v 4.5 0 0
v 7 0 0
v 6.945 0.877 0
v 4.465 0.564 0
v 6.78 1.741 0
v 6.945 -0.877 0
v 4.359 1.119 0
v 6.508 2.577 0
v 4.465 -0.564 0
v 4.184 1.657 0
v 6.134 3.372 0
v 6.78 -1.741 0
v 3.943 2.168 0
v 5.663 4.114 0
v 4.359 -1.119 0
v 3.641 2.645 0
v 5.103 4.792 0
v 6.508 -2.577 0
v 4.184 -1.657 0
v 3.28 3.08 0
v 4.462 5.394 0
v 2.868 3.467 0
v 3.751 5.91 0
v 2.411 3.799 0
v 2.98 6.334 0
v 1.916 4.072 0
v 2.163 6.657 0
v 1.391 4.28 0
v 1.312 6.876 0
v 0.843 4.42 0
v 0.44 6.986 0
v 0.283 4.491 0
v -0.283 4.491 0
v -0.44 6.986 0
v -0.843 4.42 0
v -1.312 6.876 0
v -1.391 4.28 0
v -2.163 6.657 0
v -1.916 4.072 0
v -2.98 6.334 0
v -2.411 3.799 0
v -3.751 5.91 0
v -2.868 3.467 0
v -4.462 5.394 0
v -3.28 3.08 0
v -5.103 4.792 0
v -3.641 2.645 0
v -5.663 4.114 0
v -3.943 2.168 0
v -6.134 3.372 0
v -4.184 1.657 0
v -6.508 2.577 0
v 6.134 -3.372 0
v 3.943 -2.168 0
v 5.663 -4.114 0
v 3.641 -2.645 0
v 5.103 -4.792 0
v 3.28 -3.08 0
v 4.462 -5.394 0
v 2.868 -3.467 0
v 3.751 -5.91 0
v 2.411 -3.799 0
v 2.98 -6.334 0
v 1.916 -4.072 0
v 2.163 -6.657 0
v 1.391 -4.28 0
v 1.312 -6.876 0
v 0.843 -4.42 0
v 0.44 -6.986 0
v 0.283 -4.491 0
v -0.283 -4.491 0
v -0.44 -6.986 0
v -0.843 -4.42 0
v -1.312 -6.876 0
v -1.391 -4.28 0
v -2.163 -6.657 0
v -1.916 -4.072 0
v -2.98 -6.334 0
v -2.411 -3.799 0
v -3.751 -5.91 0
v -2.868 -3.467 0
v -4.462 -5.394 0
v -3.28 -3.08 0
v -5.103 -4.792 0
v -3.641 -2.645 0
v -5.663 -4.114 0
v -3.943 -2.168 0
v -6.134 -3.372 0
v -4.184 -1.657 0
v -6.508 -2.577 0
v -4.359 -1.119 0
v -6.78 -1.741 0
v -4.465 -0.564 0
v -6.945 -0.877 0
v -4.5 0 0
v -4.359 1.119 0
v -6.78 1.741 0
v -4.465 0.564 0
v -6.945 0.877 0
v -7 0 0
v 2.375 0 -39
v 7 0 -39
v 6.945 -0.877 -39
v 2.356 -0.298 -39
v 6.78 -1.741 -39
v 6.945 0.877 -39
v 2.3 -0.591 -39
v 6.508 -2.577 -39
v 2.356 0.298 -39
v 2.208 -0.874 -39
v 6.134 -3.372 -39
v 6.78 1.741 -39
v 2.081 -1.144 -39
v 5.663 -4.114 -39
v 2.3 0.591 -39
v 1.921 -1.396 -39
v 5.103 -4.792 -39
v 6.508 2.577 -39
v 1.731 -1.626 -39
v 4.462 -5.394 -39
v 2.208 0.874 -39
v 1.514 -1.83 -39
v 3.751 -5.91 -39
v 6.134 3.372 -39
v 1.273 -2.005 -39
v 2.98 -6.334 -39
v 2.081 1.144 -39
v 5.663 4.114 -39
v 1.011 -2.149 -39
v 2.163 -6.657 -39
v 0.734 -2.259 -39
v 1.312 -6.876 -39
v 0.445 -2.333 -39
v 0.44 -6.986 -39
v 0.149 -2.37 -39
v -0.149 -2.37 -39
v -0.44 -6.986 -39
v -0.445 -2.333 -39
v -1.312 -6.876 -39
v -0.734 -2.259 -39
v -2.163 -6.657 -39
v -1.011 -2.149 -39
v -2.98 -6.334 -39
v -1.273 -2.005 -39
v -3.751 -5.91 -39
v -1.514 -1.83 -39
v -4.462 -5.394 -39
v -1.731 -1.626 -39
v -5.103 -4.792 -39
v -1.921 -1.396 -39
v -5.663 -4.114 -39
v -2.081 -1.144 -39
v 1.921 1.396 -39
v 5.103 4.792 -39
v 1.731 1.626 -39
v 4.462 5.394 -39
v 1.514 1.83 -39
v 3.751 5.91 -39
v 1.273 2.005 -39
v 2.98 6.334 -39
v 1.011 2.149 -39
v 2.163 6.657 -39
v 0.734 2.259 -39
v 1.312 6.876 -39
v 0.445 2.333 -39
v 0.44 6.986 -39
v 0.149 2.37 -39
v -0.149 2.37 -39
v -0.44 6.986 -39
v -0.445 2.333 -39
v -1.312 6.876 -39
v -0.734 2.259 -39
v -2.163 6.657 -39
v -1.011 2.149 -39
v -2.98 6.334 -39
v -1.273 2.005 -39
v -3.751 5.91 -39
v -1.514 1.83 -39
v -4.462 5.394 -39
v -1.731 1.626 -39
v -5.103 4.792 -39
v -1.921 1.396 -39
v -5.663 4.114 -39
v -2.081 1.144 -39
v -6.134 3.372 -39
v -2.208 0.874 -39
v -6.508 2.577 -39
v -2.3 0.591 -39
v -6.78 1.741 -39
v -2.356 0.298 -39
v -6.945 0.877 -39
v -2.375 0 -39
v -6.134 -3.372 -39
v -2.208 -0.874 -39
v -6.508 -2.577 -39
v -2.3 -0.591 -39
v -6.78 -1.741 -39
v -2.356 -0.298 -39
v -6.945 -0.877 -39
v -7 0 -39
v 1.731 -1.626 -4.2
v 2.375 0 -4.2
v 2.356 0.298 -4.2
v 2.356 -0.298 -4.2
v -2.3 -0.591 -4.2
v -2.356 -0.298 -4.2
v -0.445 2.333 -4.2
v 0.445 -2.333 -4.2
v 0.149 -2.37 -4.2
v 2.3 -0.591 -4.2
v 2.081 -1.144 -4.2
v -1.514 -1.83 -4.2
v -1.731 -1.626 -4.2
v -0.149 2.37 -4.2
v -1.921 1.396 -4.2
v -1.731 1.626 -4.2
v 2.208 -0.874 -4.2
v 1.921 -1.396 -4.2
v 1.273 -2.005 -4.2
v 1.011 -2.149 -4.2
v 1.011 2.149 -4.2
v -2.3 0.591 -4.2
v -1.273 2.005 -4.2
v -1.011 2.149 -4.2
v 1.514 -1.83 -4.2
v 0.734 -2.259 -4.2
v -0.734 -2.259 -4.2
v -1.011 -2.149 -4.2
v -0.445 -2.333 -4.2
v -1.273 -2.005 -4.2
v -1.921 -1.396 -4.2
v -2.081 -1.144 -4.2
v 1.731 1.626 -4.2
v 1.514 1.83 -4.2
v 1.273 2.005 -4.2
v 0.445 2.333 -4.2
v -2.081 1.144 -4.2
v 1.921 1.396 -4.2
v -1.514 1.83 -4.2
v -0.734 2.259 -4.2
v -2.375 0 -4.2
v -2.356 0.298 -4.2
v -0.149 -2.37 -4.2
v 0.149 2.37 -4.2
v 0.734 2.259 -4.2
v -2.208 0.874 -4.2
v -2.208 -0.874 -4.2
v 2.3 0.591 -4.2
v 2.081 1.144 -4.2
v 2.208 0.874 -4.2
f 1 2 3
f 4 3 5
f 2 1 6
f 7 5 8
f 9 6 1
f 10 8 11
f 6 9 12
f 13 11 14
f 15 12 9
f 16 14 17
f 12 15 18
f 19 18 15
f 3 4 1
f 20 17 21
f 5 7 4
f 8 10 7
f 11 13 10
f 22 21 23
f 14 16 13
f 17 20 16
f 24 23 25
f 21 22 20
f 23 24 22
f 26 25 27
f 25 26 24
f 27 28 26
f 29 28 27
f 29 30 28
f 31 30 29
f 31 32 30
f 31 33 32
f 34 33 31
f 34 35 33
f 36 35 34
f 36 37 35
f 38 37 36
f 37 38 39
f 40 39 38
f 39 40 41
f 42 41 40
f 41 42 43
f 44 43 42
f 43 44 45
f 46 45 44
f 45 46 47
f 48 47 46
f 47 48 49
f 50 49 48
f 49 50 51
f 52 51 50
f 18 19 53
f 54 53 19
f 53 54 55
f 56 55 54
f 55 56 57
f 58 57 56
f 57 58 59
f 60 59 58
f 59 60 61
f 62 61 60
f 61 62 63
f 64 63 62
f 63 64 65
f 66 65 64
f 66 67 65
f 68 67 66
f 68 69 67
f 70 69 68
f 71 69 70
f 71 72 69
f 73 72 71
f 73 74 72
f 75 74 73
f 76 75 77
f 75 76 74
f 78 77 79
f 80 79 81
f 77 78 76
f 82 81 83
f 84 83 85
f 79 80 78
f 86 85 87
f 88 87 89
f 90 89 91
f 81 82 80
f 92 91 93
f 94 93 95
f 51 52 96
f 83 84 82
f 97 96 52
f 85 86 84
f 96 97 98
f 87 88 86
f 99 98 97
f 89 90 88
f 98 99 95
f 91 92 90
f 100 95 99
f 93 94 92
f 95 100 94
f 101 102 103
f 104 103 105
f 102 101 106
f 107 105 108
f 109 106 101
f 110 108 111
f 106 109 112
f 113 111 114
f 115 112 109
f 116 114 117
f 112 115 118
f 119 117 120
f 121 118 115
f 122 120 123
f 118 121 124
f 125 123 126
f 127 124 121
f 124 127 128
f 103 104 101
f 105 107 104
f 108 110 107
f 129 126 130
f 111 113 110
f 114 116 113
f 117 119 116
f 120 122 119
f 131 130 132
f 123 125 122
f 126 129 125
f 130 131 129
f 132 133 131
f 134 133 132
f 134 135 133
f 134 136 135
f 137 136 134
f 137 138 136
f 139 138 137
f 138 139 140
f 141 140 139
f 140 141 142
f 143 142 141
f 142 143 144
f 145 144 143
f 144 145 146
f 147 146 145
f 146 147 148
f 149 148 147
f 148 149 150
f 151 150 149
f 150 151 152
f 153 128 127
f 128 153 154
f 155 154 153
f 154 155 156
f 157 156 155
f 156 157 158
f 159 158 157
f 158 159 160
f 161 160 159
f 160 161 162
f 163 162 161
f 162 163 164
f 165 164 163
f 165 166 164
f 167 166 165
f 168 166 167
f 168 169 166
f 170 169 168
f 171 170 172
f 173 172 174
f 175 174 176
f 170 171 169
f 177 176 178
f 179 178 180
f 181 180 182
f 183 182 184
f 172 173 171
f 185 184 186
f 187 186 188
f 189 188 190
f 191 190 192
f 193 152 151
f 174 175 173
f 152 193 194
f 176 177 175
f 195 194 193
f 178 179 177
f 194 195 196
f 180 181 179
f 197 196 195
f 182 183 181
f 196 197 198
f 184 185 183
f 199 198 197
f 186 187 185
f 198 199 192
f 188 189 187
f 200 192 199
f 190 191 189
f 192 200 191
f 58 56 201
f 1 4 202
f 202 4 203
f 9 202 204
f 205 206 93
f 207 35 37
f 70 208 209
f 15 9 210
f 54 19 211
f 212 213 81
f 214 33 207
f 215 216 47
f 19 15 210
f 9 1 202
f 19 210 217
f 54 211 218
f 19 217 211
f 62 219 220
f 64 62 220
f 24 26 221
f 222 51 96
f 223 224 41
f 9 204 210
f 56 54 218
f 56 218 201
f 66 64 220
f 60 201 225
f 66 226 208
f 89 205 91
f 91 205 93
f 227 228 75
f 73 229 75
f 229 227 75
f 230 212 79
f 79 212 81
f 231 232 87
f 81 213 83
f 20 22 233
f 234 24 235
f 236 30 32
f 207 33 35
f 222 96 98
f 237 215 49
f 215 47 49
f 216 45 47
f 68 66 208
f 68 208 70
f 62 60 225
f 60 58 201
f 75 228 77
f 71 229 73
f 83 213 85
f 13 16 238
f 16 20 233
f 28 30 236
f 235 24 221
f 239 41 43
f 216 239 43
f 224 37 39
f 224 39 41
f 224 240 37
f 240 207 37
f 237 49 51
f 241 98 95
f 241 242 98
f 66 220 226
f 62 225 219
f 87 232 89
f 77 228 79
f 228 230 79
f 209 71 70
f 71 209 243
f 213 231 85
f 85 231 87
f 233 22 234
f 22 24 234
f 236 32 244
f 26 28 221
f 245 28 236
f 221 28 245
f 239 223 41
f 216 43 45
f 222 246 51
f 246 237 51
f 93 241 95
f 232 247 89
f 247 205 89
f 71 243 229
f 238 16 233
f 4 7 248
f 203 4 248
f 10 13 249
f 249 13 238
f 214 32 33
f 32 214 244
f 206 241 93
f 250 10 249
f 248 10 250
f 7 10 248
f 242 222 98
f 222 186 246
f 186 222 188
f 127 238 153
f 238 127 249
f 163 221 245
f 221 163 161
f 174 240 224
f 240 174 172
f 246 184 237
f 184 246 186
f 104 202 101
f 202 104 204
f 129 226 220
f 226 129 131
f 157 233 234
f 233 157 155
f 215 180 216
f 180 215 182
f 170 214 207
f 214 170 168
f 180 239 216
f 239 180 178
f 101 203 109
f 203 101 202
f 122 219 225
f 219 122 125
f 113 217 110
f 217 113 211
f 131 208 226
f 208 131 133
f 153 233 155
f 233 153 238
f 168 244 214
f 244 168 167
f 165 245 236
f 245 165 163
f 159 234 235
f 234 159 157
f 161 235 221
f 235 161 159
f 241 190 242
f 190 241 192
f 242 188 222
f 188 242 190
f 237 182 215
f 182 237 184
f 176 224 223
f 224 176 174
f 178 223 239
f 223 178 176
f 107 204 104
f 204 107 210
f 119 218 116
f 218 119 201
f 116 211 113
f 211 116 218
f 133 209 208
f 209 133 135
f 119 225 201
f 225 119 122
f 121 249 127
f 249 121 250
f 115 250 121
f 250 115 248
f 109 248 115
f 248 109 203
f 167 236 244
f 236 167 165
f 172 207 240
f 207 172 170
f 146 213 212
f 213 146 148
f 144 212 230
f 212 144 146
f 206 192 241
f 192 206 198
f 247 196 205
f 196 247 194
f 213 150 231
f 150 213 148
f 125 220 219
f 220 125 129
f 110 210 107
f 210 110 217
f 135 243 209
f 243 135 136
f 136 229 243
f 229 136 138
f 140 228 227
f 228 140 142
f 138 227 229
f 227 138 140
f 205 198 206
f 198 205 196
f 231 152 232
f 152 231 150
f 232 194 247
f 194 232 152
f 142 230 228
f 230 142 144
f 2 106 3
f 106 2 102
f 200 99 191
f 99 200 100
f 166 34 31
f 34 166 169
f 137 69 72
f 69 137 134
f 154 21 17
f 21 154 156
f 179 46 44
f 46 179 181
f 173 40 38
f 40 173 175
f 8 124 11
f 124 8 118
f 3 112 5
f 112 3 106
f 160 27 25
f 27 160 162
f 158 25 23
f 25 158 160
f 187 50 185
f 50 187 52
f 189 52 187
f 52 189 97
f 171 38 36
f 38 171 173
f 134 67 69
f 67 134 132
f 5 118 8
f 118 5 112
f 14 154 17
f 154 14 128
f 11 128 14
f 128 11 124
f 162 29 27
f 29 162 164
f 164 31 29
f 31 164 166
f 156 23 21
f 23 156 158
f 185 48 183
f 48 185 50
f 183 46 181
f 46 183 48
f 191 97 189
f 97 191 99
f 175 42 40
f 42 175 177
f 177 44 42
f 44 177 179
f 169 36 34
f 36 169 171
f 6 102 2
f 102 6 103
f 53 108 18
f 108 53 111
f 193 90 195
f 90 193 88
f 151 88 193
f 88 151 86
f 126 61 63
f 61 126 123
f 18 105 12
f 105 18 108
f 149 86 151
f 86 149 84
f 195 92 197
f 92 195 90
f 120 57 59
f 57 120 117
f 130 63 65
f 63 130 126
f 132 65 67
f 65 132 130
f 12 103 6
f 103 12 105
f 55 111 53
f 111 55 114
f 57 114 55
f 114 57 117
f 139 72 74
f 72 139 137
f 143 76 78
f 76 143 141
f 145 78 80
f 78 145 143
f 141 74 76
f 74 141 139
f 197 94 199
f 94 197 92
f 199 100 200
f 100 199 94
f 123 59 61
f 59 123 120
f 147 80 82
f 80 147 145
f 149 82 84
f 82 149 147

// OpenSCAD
$fn = 50;


difference() {
	union() {
		translate(v = [0, 0, -39.0000000000]) {
			cylinder(h = 39, r = 7.0000000000);
		}
	}
	union() {
		translate(v = [0, 0, 0]) {
			rotate(a = [0, 0, 0]) {
				difference() {
					union() {
						#translate(v = [0, 0, -39.0000000000]) {
							cylinder(h = 39, r = 2.2500000000);
						}
						#translate(v = [0, 0, -4.2000000000]) {
							cylinder(h = 4.2000000000, r1 = 2.3750000000, r2 = 4.5000000000);
						}
						#translate(v = [0, 0, -39.0000000000]) {
							cylinder(h = 39, r = 2.3750000000);
						}
						#translate(v = [0, 0, -39.0000000000]) {
							cylinder(h = 39, r = 2.2500000000);
						}
					}
					union();
				}
			}
		}
	}
}
